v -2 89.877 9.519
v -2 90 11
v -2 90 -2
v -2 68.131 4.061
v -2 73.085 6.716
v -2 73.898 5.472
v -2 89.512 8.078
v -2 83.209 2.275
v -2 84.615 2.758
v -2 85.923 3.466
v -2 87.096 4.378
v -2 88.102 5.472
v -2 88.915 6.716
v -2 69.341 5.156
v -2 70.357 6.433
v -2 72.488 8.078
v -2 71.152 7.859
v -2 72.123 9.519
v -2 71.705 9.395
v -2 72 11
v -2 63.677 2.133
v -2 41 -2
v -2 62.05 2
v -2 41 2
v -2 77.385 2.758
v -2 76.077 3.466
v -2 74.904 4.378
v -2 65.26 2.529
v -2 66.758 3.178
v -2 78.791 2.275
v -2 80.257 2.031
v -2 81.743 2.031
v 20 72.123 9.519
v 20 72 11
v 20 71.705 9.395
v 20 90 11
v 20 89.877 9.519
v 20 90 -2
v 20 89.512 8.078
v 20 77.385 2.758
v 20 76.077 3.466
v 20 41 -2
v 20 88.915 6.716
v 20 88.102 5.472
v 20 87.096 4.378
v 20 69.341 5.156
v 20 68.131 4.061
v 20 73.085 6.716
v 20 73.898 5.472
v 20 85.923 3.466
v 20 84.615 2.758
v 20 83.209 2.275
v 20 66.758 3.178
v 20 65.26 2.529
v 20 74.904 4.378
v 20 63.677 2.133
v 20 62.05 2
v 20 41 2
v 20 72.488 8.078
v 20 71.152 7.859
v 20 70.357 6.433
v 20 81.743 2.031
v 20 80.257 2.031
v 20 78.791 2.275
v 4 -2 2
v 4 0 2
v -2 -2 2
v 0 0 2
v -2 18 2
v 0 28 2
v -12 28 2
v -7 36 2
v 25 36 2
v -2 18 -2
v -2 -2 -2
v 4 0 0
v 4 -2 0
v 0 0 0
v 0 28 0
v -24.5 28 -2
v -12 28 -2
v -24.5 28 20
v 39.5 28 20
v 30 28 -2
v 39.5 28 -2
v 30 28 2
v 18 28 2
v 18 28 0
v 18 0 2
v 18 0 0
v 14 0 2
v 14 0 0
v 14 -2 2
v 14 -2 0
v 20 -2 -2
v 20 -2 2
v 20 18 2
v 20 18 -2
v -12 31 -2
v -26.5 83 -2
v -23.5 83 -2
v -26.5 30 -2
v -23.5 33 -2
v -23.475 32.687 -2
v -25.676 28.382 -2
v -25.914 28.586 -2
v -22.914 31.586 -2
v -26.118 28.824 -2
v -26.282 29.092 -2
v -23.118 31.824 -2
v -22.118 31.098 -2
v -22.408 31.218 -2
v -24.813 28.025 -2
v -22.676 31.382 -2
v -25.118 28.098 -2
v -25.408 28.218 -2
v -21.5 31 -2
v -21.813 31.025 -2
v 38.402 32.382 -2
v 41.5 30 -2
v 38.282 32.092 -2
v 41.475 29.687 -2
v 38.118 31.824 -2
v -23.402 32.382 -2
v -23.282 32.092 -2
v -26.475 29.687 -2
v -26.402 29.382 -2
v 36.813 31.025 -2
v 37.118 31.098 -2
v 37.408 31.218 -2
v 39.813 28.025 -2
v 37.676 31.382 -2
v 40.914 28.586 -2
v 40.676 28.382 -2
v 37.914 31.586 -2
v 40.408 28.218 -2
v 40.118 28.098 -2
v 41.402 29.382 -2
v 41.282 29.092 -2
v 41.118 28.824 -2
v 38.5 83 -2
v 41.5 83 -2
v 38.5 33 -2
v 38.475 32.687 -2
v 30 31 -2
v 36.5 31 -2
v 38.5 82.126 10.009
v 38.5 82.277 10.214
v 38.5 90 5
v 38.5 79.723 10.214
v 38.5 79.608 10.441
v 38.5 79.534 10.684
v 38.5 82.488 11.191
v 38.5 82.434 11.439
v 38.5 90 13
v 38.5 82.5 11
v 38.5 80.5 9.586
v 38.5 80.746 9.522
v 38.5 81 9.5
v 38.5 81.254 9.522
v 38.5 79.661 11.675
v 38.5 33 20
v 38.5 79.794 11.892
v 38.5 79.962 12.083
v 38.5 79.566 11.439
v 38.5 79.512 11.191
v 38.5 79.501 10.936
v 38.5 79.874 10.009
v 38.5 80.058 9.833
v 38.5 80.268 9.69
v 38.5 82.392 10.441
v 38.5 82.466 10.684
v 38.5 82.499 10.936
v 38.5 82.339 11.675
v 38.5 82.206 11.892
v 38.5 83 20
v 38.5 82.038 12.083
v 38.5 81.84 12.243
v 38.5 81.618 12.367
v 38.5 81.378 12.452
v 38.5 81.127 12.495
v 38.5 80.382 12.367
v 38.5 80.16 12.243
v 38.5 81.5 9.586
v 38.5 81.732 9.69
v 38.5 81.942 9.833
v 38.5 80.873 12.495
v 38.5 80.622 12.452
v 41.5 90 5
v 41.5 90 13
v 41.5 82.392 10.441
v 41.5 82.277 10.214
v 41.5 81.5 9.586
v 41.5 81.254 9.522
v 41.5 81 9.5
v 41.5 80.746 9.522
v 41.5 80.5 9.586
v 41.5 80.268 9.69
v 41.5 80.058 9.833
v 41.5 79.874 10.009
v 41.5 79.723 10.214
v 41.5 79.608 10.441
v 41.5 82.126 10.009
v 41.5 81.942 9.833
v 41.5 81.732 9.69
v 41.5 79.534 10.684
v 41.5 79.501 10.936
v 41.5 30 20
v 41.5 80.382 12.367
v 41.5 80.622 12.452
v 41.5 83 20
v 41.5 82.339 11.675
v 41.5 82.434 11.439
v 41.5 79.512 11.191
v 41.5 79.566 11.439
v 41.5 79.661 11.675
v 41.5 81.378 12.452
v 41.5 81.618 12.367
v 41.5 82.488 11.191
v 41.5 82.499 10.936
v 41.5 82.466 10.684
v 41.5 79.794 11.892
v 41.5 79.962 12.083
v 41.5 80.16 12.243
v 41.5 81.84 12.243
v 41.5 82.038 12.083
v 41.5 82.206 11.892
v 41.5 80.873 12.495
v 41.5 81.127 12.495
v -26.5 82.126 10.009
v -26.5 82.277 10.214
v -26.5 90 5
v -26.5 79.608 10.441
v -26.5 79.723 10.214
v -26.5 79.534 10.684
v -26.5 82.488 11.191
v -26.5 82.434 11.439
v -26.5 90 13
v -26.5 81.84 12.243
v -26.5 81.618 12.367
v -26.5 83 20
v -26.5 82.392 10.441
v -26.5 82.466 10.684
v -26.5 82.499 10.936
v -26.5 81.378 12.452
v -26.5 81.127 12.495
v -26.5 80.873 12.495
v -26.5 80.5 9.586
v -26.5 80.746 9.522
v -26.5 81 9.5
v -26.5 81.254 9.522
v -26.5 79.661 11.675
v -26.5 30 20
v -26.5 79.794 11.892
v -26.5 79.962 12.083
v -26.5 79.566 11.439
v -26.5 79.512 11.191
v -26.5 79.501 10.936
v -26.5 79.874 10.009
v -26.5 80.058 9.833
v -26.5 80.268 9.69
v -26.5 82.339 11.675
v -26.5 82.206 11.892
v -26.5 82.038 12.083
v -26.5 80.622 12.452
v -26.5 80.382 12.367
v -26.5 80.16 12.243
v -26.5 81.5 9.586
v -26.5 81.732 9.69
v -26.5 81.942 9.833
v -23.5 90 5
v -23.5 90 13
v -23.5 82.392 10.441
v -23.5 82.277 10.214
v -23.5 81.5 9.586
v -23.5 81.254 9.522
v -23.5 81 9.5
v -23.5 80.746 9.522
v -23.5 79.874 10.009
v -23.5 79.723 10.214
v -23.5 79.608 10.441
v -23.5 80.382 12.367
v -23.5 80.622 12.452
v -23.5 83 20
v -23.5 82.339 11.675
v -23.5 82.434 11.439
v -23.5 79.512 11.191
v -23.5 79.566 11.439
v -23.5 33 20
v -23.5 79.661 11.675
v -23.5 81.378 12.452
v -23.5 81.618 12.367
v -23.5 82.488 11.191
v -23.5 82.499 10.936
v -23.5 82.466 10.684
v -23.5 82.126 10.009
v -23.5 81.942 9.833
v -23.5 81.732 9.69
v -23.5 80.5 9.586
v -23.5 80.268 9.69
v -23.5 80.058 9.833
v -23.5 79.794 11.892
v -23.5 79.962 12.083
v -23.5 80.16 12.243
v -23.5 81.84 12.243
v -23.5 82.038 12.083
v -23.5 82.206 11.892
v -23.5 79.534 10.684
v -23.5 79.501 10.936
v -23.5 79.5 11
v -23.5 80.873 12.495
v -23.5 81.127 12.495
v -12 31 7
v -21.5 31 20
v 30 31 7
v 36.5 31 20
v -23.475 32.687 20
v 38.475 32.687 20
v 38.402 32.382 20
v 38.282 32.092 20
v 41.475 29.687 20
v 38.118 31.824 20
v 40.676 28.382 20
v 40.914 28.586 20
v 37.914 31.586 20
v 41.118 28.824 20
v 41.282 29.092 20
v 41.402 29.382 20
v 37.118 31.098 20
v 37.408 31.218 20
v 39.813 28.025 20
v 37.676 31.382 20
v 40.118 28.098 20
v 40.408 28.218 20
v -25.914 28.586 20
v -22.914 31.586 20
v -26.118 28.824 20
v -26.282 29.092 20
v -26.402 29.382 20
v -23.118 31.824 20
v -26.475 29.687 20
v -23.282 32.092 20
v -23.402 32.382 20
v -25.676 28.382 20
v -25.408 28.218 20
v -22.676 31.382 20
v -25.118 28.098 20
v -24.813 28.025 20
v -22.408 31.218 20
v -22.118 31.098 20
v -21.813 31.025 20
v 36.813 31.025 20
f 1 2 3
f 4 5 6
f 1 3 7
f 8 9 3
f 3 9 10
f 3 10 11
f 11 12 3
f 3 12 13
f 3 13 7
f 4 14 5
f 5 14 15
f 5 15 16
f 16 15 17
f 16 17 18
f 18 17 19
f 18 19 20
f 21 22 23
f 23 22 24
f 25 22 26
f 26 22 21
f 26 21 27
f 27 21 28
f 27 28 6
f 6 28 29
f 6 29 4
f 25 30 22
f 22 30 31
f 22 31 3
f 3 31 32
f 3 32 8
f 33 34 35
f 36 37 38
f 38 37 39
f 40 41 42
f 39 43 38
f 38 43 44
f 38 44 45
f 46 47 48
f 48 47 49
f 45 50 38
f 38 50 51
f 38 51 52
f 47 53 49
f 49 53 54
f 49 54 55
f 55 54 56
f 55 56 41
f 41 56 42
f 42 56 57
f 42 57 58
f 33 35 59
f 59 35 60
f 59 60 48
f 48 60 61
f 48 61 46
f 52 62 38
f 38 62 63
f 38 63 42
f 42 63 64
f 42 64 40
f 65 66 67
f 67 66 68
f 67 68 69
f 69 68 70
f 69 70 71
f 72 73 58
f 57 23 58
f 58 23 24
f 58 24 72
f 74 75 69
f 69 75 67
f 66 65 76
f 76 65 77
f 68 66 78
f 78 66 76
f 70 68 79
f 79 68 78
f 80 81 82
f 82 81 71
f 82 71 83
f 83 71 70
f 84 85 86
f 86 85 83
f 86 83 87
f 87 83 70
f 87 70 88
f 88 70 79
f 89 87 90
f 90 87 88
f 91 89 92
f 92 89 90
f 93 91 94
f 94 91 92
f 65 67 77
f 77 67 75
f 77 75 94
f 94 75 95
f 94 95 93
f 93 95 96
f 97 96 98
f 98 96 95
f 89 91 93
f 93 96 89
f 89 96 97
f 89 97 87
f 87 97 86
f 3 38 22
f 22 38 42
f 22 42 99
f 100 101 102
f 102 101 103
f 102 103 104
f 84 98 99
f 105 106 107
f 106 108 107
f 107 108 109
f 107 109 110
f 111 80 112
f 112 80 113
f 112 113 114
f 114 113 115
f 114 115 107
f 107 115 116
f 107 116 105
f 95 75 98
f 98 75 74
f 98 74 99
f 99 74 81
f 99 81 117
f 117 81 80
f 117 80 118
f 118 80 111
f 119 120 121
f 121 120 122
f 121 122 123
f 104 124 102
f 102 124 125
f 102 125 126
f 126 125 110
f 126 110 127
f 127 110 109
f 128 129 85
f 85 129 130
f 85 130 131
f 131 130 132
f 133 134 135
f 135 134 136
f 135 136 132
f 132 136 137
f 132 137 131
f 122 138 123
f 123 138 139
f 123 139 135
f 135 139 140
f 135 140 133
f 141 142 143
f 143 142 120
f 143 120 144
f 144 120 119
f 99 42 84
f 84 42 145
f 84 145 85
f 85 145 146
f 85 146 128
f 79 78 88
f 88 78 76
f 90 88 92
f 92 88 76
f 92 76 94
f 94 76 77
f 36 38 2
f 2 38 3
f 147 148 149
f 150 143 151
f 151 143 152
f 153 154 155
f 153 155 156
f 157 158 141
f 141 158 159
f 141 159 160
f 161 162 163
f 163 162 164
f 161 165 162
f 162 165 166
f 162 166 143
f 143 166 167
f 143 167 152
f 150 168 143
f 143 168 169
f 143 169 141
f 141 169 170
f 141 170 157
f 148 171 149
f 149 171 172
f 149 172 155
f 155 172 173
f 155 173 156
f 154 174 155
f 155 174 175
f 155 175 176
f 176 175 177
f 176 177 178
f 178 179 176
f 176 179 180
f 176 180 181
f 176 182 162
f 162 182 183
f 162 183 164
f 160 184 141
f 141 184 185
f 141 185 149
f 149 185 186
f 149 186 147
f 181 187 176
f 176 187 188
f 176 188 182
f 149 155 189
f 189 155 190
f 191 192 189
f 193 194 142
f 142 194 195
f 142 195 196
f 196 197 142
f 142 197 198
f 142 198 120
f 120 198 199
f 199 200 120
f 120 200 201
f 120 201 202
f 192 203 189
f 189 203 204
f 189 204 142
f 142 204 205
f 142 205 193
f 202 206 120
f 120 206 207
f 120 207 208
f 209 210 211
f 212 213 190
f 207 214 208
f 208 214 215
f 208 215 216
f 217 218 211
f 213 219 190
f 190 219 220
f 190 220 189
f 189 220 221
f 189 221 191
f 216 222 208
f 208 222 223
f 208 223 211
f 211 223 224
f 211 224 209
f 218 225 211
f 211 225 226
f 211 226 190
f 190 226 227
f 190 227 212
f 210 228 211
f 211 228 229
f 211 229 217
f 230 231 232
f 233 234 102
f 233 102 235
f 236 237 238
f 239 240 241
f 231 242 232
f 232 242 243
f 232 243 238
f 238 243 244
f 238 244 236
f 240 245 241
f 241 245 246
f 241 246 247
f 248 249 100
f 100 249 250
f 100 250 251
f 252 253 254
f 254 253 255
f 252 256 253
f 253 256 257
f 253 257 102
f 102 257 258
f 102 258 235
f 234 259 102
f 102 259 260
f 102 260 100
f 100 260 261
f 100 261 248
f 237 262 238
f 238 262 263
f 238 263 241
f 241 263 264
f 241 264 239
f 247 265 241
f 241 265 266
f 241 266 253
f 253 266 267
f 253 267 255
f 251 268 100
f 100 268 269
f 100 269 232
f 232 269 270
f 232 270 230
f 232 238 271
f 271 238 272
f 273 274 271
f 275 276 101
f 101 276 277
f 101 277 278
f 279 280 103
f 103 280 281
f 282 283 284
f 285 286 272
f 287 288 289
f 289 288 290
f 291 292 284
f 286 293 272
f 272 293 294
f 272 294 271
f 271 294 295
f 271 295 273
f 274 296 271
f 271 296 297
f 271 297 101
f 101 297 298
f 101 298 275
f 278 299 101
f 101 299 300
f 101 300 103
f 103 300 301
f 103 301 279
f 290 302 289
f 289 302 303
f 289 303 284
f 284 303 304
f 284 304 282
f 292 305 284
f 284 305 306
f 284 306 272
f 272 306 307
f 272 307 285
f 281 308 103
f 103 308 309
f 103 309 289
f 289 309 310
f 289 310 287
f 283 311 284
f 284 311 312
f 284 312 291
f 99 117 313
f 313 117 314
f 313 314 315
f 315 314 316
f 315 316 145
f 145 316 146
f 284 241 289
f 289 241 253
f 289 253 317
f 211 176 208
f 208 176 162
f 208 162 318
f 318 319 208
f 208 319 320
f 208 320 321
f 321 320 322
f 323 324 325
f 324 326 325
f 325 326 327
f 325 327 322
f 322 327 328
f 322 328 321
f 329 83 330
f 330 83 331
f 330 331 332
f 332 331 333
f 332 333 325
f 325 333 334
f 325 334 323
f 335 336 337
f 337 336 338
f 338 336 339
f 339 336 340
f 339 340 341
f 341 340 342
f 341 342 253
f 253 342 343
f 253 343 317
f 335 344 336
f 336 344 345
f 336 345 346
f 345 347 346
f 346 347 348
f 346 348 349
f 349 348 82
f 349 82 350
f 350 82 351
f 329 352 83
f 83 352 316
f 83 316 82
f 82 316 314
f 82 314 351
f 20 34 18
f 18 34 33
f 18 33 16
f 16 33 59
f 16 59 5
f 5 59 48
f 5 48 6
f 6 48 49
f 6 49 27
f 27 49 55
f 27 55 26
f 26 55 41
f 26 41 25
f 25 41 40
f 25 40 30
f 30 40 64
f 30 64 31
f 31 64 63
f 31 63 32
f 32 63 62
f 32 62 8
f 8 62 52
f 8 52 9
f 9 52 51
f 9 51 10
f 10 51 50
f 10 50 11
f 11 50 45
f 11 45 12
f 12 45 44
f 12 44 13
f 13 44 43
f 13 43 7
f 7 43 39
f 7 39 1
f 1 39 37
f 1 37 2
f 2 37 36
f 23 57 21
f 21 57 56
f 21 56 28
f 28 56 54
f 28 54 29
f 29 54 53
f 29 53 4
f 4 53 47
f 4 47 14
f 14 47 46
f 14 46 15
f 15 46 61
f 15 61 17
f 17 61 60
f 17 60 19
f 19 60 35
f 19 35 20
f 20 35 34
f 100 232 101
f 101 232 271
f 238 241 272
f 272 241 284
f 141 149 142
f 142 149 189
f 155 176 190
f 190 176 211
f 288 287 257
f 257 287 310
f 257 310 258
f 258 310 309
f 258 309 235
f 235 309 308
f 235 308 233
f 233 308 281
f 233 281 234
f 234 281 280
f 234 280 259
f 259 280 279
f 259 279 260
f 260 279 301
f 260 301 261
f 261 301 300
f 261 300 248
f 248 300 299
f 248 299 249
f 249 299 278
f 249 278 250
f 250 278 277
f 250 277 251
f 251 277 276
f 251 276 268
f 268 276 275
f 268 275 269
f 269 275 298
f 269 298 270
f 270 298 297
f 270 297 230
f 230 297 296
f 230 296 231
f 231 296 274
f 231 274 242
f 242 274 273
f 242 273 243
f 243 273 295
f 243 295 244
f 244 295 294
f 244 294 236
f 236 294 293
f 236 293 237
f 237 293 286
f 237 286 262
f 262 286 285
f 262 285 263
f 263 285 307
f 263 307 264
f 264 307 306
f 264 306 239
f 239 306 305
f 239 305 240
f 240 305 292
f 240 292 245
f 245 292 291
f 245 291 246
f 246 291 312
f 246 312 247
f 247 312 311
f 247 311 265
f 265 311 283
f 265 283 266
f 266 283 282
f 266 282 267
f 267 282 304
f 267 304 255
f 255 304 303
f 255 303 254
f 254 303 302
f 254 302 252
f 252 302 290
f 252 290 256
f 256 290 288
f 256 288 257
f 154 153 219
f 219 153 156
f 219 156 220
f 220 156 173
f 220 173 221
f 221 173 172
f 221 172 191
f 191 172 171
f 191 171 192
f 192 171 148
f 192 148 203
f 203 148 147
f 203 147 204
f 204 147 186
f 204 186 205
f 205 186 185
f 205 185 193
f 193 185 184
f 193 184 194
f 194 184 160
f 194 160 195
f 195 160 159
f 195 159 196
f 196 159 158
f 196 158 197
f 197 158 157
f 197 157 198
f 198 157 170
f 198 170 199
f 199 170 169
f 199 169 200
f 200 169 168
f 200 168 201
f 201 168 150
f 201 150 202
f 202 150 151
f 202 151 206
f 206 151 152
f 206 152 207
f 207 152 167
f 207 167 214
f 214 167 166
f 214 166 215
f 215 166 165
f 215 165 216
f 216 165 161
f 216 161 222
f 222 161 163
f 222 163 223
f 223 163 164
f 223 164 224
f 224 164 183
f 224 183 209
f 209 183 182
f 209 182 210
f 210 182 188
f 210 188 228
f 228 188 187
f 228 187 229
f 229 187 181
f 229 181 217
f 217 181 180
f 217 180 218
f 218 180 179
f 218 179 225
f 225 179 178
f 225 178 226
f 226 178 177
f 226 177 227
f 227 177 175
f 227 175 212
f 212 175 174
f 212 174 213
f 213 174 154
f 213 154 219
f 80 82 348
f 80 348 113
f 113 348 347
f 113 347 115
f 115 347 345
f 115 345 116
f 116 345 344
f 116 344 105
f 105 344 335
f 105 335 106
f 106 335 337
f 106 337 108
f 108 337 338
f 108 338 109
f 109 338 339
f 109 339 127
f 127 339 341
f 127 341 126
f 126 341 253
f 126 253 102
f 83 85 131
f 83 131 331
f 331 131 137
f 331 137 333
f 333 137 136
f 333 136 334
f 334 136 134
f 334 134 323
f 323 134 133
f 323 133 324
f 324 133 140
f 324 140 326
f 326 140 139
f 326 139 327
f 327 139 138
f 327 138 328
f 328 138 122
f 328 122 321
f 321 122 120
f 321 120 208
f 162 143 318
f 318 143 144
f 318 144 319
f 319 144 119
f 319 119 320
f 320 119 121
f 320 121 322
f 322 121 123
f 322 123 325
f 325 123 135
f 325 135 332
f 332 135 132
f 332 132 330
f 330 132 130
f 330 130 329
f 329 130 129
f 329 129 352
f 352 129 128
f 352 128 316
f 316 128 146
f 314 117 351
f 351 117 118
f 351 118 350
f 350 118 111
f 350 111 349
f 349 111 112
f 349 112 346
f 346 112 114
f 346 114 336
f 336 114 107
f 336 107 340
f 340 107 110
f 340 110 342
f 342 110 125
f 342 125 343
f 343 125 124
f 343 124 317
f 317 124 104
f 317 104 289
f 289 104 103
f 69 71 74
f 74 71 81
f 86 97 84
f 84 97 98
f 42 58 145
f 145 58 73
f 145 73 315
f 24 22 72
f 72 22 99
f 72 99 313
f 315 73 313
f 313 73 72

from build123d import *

# Parameters (mm, degrees)
BOSS_EXTRUDE1_DEPTH      = 2
SKETCH2_W                = 22
SKETCH2_H                = 32
BOSS_EXTRUDE2_DEPTH      = 2
BOSS_EXTRUDE3_DEPTH      = 2
BOSS_EXTRUDE3_DEPTH_BACK = 2
SKETCH3_W                = 22
SKETCH3_H                = 60
BOSS_EXTRUDE4_DEPTH      = 18
BOSS_EXTRUDE4_DEPTH_BACK = 4
SKETCH4_W                = 21.5
SKETCH4_H                = 3
SKETCH4_W_2              = 18.5
SKETCH4_W_3              = 3
SKETCH4_H_2              = 59
BOSS_EXTRUDE5_DEPTH      = 22
FILLET1_R                = 10
CHAMFER1_SIZE            = 7
SKETCH6_R                = 1.5
CUT_EXTRUDE1_DEPTH       = 72
FILLET2_R                = 2
CHAMFER2_SIZE            = 10
CHAMFER3_SIZE            = 10
CHAMFER4_SIZE            = 5


with BuildPart() as part:
    # Sketch1 → Boss-Extrude1 (new body)
    with BuildSketch(Plane.XY):
        Polygon((-2, 30), (-2, -2), (4, -2), (4, 0), (0, 0), (0, 28), (18, 28), (18, 0), (14, 0), (14, -2), (20, -2), (20, 30), align=None)
    extrude(amount=BOSS_EXTRUDE1_DEPTH)

    # Sketch2 → Boss-Extrude2 (add)
    with BuildSketch(Plane(origin=(0, 0, 0), x_dir=(-1, 0, 0), z_dir=(0, 0, -1))):
        with Locations((-9, 14)):
            Rectangle(SKETCH2_W, SKETCH2_H)
    extrude(amount=BOSS_EXTRUDE2_DEPTH)

    # Sketch3 → Boss-Extrude3 (add, two sides: drawn at the far end of the back side and taken through both)
    with BuildSketch(Plane.XY.offset(-BOSS_EXTRUDE3_DEPTH_BACK)):
        with Locations((9, 60)):
            Rectangle(SKETCH3_W, SKETCH3_H)
    extrude(amount=BOSS_EXTRUDE3_DEPTH + BOSS_EXTRUDE3_DEPTH_BACK)

    # Sketch4 → Boss-Extrude4 (add, two sides: drawn at the far end of the back side and taken through both)
    with BuildSketch(Plane.XY.offset(2).offset(-BOSS_EXTRUDE4_DEPTH_BACK)):
        Polygon((-23.5, 28), (-23.5, 31), (-23.5, 90), (-26.5, 90), (-26.5, 28), align=None)
        with Locations((-12.75, 29.5)):
            Rectangle(SKETCH4_W, SKETCH4_H)
        with Locations((29.25, 29.5)):
            Rectangle(SKETCH4_W_2, SKETCH4_H)
        with Locations((40, 60.5)):
            Rectangle(SKETCH4_W_3, SKETCH4_H_2)
        Polygon((20, 31), (-2, 31), (-2, 28), (0, 28), (18, 28), (20, 28), align=None)
        with Locations((40, 29.5)):
            Rectangle(SKETCH4_W_3, SKETCH4_H)
    extrude(amount=BOSS_EXTRUDE4_DEPTH + BOSS_EXTRUDE4_DEPTH_BACK)

    # Sketch5 → Boss-Extrude5 (add)
    with BuildSketch(Plane(origin=(20, 0, 0), x_dir=(0, 0, -1), z_dir=(1, 0, 0))):
        with BuildLine():
            ThreePointArc((-2, 81), (-4.636038969, 74.636038969), (-11, 72))
            Line((-11, 72), (-2, 72))
            Line((-2, 72), (-2, 81))
        make_face()
        with BuildLine():
            Line((-2, 90), (-11, 90))
            ThreePointArc((-11, 90), (-4.636038969, 87.363961031), (-2, 81))
            Line((-2, 81), (-2, 90))
        make_face()
    extrude(amount=-BOSS_EXTRUDE5_DEPTH)

    # Fillet1
    # the kernel refuses this fillet: 10 mm, written as the material it adds along each edge
    with BuildSketch(Plane(origin=(20, 72, 2), x_dir=(0, 0, 1), z_dir=(-1, 0, 0))) as fillet1_piece_1_section:
        with BuildLine():
            CenterArc((10, -9.949874371), FILLET1_R, 95.739170477, 84.260829523)
            Line((0, -9.949874371), (-0.2, -9.949874371))
            Line((-0.2, -9.949874371), (-0.2, 0))
            Line((-0.2, 0), (0, 0.2))
            ThreePointArc((0, 0.2), (4.5, 0.2), (8.98, 0.198997487))
            Line((8.98, 0.198997487), (9, 0))
        make_face()
    fillet1_piece_1 = extrude(amount=22, mode=Mode.PRIVATE)
    fillet1_piece_1 = fillet1_piece_1 - Plane(origin=(9, 81, 11), x_dir=(0, 0, -1), z_dir=(1, 0, 0)) * Cylinder(9, 84, mode=Mode.PRIVATE)
    add(fillet1_piece_1)

    # Chamfer1
    chamfer1_edges = [part.edges().sort_by_distance(p)[0] for p in [
        (40, 90, -2),
        (-25, 90, -2),
        (-25, 90, 20),
        (40, 90, 20),
    ]]
    chamfer(chamfer1_edges, length=CHAMFER1_SIZE)

    # Sketch6 → Cut-Extrude1 (cut)
    with BuildSketch(Plane(origin=(41.5, 0, 0), x_dir=(0, 0, -1), z_dir=(1, 0, 0))):
        with Locations((-11, 81)):
            Circle(SKETCH6_R)
    extrude(amount=-CUT_EXTRUDE1_DEPTH, mode=Mode.SUBTRACT)

    # Fillet2
    fillet2_edges = [part.edges().sort_by_distance(p)[0] for p in [
        (38.5, 31, 9),
        (41.5, 28, 9),
        (-26.5, 28, 9),
        (-23.5, 31, 9),
    ]]
    fillet(fillet2_edges, radius=FILLET2_R)

    # Chamfer2
    chamfer2_edges = [part.edges().sort_by_distance(p)[0] for p in [
        (20, 28, 0),
        (-2, 28, 0),
    ]]
    chamfer(chamfer2_edges, length=CHAMFER2_SIZE)

    # Chamfer3
    chamfer3_edges = [part.edges().sort_by_distance(p)[0] for p in [
        (-2, 31, 0),
        (20, 31, 0),
    ]]
    chamfer(chamfer3_edges, length=CHAMFER3_SIZE)

    # Chamfer4
    chamfer4_edges = [part.edges().sort_by_distance(p)[0] for p in [
        (9, 31, 2),
    ]]
    chamfer(chamfer4_edges, length=CHAMFER4_SIZE)


solid = part.part
